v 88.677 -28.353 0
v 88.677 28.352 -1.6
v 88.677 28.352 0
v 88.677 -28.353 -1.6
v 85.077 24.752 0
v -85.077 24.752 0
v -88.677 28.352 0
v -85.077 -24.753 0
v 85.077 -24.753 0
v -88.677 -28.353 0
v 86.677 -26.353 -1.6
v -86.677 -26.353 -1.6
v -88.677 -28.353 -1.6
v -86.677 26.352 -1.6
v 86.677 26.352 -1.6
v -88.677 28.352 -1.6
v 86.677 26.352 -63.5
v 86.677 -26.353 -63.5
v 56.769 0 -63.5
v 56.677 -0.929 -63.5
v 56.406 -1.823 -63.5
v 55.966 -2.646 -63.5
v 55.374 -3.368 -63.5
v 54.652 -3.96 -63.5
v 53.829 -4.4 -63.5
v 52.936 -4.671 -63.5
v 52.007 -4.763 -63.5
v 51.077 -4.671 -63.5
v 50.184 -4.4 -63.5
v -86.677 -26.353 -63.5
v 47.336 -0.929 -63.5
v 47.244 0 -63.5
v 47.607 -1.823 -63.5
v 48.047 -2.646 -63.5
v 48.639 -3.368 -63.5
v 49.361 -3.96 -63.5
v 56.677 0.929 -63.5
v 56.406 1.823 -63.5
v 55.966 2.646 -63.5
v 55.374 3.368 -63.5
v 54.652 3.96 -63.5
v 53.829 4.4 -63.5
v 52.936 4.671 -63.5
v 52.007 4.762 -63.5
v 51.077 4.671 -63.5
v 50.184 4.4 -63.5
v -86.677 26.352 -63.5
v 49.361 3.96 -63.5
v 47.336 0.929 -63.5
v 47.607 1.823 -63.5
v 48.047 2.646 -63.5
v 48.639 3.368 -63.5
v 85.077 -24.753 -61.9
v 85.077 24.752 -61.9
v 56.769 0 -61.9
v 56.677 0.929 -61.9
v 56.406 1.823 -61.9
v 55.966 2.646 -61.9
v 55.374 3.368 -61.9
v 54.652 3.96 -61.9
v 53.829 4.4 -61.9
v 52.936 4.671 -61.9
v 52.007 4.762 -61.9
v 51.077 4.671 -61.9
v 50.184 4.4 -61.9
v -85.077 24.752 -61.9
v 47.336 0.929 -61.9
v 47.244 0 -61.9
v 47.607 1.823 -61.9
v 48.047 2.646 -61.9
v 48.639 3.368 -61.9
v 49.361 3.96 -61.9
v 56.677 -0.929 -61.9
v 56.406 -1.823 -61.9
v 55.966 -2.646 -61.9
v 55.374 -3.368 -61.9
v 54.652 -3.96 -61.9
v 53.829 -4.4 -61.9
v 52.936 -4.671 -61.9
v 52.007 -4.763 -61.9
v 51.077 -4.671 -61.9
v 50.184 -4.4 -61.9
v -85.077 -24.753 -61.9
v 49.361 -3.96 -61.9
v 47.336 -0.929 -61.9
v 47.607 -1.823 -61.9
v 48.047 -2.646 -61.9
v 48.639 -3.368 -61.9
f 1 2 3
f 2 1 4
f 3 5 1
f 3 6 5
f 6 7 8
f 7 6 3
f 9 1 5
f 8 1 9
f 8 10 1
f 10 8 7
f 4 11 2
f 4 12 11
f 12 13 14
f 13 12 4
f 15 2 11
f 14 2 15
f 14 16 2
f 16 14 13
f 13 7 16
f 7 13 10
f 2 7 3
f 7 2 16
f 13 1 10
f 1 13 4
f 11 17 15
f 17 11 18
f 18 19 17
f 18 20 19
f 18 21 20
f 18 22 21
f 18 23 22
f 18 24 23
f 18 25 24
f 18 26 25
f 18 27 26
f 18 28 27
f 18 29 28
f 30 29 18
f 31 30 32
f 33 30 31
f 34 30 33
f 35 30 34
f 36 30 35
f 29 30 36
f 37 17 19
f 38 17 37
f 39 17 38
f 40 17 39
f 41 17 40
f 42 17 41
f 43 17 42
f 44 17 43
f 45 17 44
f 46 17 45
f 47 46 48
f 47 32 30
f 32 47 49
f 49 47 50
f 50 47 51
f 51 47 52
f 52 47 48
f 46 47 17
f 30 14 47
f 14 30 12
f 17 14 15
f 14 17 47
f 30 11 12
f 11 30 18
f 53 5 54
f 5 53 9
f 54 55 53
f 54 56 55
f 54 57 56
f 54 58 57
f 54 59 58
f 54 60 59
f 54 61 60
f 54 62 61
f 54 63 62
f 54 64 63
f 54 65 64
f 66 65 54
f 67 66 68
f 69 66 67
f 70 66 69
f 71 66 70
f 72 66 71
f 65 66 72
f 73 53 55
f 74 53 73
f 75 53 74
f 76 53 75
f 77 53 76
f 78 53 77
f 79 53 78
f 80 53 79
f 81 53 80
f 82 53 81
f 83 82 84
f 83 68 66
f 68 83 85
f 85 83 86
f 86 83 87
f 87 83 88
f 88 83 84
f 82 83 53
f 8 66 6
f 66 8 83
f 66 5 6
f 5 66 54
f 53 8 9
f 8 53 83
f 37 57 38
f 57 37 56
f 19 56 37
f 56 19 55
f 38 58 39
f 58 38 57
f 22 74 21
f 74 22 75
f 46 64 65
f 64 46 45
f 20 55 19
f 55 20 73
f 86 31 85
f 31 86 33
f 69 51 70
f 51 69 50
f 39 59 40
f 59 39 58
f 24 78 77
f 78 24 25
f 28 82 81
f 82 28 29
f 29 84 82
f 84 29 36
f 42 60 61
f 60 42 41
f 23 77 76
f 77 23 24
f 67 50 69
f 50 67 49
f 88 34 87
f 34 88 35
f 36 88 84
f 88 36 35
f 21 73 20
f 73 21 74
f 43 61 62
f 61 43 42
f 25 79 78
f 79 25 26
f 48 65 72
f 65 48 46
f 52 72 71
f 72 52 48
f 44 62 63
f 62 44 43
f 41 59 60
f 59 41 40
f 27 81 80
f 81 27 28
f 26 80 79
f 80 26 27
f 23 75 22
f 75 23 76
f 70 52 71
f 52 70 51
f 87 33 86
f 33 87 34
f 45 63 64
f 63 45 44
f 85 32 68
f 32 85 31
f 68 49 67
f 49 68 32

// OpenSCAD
// file: oled.scad
// OLED display dims
opcb_w = 100;
opcb_h = 1.316*mm;
opcb_t = 1;

odpy_w = 3.517*mm;
odpy_h = 1.224*mm;
odpy_t = 0.125*mm;

ohol_dy = 1.125*mm;
ohol_dx = 3.734*mm;
ohol_dia = 0.125*mm;

module hole_at( x, y, dia) {
     translate( [x, y, -e])
     cylinder( d=dia, h=20);
}

module oled() {
     dx = (opcb_w-ohol_dx)/2;
     dy = (opcb_h-ohol_dy)/2;
     translate( [-opcb_w/2, -opcb_h/2, 0]) {
	  difference() {
	       color("blue") cube( [opcb_w, opcb_h, opcb_t]);
	       hole_at( dx, dy, ohol_dia);
	       hole_at( opcb_w-dx, dy, ohol_dia);
	       hole_at( dx, opcb_h-dy, ohol_dia);
	       hole_at( opcb_w-dx, opcb_h-dy, ohol_dia);
	  }
	  translate( [(opcb_w-odpy_w)/2, (opcb_h-odpy_h)/2, opcb_t])
	  color("black") cube( [odpy_w, odpy_h, odpy_t]);
     }
}

module oled_holes() {
     dx = (opcb_w-ohol_dx)/2;
     dy = (opcb_h-ohol_dy)/2;
     spc = 0.25;			/* space around display */
     translate( [-opcb_w/2, -opcb_h/2, 0]) {
	  hole_at( dx, dy, ohol_dia);
	  hole_at( opcb_w-dx, dy, ohol_dia);
	  hole_at( dx, opcb_h-dy, ohol_dia);
	  hole_at( opcb_w-dx, opcb_h-dy, ohol_dia);

	  translate( [(opcb_w-odpy_w)/2-spc, (opcb_h-odpy_h)/2-spc, -e])
	  cube( [odpy_w+2*spc, odpy_h+2*spc, 20]);
     }
     
}
// main file
//
// car computer enclosure
//

mm = 25.4;
$fn = 32;
e = 0.1;

include <oled.scad>

//
// case body
//
// body_w = 182;

body_spc = 0.05*mm;

body_w = 6.875*mm-body_spc;
body_h = 2.125*mm-body_spc;
body_d = 2.5*mm;
// body_d = 10;     /* fast print */

body_thk = 1.6;
body_lip = 2.0;

panel_w = body_w + 2*body_lip;
panel_h = body_h + 2*body_lip;

// draw box with lip, centered
module box() {
     translate( [-body_w/2, -body_h/2, -body_d])
     difference() {
	  union() {
	       // lip
	       translate( [-body_lip, -body_lip, body_d-body_thk])
		    cube( [body_w+2*body_lip, body_h+2*body_lip, body_thk]);
	       // box body
	       cube( [body_w, body_h, body_d]);
	  }
	  // cavity
	  translate( [body_thk, body_thk, body_thk])
	       cube( [body_w-2*body_thk, body_h-2*body_thk, body_d]);
	  // wiring hole
	  translate( [4*body_w/5, body_h/2, -e])
	       cylinder( d=0.375*mm, h=10);


	  echo("Cavity (mm)", body_w-2*body_thk, body_h-2*body_thk, body_d);
	  echo("Cavity (in)", (body_w-2*body_thk)/mm, (body_h-2*body_thk)/mm, body_d/mm);
     }
}


// front panel, centered

module panel() {
     translate( [-panel_w/2, -panel_h/2, 10])
	  cube( [panel_w, panel_h, body_thk]);
}

box();

// translate( [0, 0, 5]) {
//      difference() {
//        	  color("brown") panel();
// 	  translate( [-body_w+0.65*mm, 70, 0])
// 	       translate( [147.5, -69.7, 0]) oled_holes();
//      }
// }
// 
// 
// translate( [-body_w+0.65*mm, 70, 10]) {
//       color("green") import("car-control.stl");
//       translate( [147.5, -69.7, 3]) oled();
// }
